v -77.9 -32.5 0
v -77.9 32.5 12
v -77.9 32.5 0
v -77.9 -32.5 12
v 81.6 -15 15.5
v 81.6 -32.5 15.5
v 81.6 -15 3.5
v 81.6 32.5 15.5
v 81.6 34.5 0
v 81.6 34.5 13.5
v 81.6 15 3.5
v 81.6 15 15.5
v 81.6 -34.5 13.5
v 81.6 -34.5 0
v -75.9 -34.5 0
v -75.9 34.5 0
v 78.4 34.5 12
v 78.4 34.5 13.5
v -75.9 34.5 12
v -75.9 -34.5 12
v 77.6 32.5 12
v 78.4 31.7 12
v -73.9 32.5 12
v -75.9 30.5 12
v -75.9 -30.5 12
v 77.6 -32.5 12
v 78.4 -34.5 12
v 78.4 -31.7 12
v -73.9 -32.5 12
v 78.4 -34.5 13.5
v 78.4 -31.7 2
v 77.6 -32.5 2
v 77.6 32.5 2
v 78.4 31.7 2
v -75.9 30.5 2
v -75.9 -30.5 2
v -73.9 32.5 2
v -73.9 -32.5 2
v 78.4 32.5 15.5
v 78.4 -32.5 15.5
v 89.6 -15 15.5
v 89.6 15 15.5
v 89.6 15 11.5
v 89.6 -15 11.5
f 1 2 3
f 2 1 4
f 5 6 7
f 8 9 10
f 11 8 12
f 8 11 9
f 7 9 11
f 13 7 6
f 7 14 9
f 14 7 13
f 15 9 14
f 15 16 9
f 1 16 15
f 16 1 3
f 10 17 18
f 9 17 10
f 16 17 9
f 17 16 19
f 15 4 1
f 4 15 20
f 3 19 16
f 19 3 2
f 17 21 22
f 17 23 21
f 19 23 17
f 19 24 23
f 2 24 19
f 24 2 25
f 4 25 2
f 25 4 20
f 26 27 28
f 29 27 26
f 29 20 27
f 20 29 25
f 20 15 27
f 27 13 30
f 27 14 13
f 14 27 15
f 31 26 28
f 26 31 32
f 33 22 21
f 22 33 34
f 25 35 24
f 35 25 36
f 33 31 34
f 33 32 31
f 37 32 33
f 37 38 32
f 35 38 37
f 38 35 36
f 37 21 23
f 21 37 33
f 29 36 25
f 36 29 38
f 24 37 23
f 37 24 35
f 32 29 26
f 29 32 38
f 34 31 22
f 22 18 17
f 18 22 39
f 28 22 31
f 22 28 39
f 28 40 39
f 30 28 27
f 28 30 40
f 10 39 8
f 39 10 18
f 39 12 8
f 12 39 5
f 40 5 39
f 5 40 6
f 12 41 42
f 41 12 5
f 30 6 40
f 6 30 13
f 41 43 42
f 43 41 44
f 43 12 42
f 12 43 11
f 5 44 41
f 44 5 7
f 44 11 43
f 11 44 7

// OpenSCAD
// Pull-out drip tray only — prints as modelled, flat on the bed, basin
// up. See marsh_repot_014.scad.
include <marsh_repot_014.scad>
part = "tray";
